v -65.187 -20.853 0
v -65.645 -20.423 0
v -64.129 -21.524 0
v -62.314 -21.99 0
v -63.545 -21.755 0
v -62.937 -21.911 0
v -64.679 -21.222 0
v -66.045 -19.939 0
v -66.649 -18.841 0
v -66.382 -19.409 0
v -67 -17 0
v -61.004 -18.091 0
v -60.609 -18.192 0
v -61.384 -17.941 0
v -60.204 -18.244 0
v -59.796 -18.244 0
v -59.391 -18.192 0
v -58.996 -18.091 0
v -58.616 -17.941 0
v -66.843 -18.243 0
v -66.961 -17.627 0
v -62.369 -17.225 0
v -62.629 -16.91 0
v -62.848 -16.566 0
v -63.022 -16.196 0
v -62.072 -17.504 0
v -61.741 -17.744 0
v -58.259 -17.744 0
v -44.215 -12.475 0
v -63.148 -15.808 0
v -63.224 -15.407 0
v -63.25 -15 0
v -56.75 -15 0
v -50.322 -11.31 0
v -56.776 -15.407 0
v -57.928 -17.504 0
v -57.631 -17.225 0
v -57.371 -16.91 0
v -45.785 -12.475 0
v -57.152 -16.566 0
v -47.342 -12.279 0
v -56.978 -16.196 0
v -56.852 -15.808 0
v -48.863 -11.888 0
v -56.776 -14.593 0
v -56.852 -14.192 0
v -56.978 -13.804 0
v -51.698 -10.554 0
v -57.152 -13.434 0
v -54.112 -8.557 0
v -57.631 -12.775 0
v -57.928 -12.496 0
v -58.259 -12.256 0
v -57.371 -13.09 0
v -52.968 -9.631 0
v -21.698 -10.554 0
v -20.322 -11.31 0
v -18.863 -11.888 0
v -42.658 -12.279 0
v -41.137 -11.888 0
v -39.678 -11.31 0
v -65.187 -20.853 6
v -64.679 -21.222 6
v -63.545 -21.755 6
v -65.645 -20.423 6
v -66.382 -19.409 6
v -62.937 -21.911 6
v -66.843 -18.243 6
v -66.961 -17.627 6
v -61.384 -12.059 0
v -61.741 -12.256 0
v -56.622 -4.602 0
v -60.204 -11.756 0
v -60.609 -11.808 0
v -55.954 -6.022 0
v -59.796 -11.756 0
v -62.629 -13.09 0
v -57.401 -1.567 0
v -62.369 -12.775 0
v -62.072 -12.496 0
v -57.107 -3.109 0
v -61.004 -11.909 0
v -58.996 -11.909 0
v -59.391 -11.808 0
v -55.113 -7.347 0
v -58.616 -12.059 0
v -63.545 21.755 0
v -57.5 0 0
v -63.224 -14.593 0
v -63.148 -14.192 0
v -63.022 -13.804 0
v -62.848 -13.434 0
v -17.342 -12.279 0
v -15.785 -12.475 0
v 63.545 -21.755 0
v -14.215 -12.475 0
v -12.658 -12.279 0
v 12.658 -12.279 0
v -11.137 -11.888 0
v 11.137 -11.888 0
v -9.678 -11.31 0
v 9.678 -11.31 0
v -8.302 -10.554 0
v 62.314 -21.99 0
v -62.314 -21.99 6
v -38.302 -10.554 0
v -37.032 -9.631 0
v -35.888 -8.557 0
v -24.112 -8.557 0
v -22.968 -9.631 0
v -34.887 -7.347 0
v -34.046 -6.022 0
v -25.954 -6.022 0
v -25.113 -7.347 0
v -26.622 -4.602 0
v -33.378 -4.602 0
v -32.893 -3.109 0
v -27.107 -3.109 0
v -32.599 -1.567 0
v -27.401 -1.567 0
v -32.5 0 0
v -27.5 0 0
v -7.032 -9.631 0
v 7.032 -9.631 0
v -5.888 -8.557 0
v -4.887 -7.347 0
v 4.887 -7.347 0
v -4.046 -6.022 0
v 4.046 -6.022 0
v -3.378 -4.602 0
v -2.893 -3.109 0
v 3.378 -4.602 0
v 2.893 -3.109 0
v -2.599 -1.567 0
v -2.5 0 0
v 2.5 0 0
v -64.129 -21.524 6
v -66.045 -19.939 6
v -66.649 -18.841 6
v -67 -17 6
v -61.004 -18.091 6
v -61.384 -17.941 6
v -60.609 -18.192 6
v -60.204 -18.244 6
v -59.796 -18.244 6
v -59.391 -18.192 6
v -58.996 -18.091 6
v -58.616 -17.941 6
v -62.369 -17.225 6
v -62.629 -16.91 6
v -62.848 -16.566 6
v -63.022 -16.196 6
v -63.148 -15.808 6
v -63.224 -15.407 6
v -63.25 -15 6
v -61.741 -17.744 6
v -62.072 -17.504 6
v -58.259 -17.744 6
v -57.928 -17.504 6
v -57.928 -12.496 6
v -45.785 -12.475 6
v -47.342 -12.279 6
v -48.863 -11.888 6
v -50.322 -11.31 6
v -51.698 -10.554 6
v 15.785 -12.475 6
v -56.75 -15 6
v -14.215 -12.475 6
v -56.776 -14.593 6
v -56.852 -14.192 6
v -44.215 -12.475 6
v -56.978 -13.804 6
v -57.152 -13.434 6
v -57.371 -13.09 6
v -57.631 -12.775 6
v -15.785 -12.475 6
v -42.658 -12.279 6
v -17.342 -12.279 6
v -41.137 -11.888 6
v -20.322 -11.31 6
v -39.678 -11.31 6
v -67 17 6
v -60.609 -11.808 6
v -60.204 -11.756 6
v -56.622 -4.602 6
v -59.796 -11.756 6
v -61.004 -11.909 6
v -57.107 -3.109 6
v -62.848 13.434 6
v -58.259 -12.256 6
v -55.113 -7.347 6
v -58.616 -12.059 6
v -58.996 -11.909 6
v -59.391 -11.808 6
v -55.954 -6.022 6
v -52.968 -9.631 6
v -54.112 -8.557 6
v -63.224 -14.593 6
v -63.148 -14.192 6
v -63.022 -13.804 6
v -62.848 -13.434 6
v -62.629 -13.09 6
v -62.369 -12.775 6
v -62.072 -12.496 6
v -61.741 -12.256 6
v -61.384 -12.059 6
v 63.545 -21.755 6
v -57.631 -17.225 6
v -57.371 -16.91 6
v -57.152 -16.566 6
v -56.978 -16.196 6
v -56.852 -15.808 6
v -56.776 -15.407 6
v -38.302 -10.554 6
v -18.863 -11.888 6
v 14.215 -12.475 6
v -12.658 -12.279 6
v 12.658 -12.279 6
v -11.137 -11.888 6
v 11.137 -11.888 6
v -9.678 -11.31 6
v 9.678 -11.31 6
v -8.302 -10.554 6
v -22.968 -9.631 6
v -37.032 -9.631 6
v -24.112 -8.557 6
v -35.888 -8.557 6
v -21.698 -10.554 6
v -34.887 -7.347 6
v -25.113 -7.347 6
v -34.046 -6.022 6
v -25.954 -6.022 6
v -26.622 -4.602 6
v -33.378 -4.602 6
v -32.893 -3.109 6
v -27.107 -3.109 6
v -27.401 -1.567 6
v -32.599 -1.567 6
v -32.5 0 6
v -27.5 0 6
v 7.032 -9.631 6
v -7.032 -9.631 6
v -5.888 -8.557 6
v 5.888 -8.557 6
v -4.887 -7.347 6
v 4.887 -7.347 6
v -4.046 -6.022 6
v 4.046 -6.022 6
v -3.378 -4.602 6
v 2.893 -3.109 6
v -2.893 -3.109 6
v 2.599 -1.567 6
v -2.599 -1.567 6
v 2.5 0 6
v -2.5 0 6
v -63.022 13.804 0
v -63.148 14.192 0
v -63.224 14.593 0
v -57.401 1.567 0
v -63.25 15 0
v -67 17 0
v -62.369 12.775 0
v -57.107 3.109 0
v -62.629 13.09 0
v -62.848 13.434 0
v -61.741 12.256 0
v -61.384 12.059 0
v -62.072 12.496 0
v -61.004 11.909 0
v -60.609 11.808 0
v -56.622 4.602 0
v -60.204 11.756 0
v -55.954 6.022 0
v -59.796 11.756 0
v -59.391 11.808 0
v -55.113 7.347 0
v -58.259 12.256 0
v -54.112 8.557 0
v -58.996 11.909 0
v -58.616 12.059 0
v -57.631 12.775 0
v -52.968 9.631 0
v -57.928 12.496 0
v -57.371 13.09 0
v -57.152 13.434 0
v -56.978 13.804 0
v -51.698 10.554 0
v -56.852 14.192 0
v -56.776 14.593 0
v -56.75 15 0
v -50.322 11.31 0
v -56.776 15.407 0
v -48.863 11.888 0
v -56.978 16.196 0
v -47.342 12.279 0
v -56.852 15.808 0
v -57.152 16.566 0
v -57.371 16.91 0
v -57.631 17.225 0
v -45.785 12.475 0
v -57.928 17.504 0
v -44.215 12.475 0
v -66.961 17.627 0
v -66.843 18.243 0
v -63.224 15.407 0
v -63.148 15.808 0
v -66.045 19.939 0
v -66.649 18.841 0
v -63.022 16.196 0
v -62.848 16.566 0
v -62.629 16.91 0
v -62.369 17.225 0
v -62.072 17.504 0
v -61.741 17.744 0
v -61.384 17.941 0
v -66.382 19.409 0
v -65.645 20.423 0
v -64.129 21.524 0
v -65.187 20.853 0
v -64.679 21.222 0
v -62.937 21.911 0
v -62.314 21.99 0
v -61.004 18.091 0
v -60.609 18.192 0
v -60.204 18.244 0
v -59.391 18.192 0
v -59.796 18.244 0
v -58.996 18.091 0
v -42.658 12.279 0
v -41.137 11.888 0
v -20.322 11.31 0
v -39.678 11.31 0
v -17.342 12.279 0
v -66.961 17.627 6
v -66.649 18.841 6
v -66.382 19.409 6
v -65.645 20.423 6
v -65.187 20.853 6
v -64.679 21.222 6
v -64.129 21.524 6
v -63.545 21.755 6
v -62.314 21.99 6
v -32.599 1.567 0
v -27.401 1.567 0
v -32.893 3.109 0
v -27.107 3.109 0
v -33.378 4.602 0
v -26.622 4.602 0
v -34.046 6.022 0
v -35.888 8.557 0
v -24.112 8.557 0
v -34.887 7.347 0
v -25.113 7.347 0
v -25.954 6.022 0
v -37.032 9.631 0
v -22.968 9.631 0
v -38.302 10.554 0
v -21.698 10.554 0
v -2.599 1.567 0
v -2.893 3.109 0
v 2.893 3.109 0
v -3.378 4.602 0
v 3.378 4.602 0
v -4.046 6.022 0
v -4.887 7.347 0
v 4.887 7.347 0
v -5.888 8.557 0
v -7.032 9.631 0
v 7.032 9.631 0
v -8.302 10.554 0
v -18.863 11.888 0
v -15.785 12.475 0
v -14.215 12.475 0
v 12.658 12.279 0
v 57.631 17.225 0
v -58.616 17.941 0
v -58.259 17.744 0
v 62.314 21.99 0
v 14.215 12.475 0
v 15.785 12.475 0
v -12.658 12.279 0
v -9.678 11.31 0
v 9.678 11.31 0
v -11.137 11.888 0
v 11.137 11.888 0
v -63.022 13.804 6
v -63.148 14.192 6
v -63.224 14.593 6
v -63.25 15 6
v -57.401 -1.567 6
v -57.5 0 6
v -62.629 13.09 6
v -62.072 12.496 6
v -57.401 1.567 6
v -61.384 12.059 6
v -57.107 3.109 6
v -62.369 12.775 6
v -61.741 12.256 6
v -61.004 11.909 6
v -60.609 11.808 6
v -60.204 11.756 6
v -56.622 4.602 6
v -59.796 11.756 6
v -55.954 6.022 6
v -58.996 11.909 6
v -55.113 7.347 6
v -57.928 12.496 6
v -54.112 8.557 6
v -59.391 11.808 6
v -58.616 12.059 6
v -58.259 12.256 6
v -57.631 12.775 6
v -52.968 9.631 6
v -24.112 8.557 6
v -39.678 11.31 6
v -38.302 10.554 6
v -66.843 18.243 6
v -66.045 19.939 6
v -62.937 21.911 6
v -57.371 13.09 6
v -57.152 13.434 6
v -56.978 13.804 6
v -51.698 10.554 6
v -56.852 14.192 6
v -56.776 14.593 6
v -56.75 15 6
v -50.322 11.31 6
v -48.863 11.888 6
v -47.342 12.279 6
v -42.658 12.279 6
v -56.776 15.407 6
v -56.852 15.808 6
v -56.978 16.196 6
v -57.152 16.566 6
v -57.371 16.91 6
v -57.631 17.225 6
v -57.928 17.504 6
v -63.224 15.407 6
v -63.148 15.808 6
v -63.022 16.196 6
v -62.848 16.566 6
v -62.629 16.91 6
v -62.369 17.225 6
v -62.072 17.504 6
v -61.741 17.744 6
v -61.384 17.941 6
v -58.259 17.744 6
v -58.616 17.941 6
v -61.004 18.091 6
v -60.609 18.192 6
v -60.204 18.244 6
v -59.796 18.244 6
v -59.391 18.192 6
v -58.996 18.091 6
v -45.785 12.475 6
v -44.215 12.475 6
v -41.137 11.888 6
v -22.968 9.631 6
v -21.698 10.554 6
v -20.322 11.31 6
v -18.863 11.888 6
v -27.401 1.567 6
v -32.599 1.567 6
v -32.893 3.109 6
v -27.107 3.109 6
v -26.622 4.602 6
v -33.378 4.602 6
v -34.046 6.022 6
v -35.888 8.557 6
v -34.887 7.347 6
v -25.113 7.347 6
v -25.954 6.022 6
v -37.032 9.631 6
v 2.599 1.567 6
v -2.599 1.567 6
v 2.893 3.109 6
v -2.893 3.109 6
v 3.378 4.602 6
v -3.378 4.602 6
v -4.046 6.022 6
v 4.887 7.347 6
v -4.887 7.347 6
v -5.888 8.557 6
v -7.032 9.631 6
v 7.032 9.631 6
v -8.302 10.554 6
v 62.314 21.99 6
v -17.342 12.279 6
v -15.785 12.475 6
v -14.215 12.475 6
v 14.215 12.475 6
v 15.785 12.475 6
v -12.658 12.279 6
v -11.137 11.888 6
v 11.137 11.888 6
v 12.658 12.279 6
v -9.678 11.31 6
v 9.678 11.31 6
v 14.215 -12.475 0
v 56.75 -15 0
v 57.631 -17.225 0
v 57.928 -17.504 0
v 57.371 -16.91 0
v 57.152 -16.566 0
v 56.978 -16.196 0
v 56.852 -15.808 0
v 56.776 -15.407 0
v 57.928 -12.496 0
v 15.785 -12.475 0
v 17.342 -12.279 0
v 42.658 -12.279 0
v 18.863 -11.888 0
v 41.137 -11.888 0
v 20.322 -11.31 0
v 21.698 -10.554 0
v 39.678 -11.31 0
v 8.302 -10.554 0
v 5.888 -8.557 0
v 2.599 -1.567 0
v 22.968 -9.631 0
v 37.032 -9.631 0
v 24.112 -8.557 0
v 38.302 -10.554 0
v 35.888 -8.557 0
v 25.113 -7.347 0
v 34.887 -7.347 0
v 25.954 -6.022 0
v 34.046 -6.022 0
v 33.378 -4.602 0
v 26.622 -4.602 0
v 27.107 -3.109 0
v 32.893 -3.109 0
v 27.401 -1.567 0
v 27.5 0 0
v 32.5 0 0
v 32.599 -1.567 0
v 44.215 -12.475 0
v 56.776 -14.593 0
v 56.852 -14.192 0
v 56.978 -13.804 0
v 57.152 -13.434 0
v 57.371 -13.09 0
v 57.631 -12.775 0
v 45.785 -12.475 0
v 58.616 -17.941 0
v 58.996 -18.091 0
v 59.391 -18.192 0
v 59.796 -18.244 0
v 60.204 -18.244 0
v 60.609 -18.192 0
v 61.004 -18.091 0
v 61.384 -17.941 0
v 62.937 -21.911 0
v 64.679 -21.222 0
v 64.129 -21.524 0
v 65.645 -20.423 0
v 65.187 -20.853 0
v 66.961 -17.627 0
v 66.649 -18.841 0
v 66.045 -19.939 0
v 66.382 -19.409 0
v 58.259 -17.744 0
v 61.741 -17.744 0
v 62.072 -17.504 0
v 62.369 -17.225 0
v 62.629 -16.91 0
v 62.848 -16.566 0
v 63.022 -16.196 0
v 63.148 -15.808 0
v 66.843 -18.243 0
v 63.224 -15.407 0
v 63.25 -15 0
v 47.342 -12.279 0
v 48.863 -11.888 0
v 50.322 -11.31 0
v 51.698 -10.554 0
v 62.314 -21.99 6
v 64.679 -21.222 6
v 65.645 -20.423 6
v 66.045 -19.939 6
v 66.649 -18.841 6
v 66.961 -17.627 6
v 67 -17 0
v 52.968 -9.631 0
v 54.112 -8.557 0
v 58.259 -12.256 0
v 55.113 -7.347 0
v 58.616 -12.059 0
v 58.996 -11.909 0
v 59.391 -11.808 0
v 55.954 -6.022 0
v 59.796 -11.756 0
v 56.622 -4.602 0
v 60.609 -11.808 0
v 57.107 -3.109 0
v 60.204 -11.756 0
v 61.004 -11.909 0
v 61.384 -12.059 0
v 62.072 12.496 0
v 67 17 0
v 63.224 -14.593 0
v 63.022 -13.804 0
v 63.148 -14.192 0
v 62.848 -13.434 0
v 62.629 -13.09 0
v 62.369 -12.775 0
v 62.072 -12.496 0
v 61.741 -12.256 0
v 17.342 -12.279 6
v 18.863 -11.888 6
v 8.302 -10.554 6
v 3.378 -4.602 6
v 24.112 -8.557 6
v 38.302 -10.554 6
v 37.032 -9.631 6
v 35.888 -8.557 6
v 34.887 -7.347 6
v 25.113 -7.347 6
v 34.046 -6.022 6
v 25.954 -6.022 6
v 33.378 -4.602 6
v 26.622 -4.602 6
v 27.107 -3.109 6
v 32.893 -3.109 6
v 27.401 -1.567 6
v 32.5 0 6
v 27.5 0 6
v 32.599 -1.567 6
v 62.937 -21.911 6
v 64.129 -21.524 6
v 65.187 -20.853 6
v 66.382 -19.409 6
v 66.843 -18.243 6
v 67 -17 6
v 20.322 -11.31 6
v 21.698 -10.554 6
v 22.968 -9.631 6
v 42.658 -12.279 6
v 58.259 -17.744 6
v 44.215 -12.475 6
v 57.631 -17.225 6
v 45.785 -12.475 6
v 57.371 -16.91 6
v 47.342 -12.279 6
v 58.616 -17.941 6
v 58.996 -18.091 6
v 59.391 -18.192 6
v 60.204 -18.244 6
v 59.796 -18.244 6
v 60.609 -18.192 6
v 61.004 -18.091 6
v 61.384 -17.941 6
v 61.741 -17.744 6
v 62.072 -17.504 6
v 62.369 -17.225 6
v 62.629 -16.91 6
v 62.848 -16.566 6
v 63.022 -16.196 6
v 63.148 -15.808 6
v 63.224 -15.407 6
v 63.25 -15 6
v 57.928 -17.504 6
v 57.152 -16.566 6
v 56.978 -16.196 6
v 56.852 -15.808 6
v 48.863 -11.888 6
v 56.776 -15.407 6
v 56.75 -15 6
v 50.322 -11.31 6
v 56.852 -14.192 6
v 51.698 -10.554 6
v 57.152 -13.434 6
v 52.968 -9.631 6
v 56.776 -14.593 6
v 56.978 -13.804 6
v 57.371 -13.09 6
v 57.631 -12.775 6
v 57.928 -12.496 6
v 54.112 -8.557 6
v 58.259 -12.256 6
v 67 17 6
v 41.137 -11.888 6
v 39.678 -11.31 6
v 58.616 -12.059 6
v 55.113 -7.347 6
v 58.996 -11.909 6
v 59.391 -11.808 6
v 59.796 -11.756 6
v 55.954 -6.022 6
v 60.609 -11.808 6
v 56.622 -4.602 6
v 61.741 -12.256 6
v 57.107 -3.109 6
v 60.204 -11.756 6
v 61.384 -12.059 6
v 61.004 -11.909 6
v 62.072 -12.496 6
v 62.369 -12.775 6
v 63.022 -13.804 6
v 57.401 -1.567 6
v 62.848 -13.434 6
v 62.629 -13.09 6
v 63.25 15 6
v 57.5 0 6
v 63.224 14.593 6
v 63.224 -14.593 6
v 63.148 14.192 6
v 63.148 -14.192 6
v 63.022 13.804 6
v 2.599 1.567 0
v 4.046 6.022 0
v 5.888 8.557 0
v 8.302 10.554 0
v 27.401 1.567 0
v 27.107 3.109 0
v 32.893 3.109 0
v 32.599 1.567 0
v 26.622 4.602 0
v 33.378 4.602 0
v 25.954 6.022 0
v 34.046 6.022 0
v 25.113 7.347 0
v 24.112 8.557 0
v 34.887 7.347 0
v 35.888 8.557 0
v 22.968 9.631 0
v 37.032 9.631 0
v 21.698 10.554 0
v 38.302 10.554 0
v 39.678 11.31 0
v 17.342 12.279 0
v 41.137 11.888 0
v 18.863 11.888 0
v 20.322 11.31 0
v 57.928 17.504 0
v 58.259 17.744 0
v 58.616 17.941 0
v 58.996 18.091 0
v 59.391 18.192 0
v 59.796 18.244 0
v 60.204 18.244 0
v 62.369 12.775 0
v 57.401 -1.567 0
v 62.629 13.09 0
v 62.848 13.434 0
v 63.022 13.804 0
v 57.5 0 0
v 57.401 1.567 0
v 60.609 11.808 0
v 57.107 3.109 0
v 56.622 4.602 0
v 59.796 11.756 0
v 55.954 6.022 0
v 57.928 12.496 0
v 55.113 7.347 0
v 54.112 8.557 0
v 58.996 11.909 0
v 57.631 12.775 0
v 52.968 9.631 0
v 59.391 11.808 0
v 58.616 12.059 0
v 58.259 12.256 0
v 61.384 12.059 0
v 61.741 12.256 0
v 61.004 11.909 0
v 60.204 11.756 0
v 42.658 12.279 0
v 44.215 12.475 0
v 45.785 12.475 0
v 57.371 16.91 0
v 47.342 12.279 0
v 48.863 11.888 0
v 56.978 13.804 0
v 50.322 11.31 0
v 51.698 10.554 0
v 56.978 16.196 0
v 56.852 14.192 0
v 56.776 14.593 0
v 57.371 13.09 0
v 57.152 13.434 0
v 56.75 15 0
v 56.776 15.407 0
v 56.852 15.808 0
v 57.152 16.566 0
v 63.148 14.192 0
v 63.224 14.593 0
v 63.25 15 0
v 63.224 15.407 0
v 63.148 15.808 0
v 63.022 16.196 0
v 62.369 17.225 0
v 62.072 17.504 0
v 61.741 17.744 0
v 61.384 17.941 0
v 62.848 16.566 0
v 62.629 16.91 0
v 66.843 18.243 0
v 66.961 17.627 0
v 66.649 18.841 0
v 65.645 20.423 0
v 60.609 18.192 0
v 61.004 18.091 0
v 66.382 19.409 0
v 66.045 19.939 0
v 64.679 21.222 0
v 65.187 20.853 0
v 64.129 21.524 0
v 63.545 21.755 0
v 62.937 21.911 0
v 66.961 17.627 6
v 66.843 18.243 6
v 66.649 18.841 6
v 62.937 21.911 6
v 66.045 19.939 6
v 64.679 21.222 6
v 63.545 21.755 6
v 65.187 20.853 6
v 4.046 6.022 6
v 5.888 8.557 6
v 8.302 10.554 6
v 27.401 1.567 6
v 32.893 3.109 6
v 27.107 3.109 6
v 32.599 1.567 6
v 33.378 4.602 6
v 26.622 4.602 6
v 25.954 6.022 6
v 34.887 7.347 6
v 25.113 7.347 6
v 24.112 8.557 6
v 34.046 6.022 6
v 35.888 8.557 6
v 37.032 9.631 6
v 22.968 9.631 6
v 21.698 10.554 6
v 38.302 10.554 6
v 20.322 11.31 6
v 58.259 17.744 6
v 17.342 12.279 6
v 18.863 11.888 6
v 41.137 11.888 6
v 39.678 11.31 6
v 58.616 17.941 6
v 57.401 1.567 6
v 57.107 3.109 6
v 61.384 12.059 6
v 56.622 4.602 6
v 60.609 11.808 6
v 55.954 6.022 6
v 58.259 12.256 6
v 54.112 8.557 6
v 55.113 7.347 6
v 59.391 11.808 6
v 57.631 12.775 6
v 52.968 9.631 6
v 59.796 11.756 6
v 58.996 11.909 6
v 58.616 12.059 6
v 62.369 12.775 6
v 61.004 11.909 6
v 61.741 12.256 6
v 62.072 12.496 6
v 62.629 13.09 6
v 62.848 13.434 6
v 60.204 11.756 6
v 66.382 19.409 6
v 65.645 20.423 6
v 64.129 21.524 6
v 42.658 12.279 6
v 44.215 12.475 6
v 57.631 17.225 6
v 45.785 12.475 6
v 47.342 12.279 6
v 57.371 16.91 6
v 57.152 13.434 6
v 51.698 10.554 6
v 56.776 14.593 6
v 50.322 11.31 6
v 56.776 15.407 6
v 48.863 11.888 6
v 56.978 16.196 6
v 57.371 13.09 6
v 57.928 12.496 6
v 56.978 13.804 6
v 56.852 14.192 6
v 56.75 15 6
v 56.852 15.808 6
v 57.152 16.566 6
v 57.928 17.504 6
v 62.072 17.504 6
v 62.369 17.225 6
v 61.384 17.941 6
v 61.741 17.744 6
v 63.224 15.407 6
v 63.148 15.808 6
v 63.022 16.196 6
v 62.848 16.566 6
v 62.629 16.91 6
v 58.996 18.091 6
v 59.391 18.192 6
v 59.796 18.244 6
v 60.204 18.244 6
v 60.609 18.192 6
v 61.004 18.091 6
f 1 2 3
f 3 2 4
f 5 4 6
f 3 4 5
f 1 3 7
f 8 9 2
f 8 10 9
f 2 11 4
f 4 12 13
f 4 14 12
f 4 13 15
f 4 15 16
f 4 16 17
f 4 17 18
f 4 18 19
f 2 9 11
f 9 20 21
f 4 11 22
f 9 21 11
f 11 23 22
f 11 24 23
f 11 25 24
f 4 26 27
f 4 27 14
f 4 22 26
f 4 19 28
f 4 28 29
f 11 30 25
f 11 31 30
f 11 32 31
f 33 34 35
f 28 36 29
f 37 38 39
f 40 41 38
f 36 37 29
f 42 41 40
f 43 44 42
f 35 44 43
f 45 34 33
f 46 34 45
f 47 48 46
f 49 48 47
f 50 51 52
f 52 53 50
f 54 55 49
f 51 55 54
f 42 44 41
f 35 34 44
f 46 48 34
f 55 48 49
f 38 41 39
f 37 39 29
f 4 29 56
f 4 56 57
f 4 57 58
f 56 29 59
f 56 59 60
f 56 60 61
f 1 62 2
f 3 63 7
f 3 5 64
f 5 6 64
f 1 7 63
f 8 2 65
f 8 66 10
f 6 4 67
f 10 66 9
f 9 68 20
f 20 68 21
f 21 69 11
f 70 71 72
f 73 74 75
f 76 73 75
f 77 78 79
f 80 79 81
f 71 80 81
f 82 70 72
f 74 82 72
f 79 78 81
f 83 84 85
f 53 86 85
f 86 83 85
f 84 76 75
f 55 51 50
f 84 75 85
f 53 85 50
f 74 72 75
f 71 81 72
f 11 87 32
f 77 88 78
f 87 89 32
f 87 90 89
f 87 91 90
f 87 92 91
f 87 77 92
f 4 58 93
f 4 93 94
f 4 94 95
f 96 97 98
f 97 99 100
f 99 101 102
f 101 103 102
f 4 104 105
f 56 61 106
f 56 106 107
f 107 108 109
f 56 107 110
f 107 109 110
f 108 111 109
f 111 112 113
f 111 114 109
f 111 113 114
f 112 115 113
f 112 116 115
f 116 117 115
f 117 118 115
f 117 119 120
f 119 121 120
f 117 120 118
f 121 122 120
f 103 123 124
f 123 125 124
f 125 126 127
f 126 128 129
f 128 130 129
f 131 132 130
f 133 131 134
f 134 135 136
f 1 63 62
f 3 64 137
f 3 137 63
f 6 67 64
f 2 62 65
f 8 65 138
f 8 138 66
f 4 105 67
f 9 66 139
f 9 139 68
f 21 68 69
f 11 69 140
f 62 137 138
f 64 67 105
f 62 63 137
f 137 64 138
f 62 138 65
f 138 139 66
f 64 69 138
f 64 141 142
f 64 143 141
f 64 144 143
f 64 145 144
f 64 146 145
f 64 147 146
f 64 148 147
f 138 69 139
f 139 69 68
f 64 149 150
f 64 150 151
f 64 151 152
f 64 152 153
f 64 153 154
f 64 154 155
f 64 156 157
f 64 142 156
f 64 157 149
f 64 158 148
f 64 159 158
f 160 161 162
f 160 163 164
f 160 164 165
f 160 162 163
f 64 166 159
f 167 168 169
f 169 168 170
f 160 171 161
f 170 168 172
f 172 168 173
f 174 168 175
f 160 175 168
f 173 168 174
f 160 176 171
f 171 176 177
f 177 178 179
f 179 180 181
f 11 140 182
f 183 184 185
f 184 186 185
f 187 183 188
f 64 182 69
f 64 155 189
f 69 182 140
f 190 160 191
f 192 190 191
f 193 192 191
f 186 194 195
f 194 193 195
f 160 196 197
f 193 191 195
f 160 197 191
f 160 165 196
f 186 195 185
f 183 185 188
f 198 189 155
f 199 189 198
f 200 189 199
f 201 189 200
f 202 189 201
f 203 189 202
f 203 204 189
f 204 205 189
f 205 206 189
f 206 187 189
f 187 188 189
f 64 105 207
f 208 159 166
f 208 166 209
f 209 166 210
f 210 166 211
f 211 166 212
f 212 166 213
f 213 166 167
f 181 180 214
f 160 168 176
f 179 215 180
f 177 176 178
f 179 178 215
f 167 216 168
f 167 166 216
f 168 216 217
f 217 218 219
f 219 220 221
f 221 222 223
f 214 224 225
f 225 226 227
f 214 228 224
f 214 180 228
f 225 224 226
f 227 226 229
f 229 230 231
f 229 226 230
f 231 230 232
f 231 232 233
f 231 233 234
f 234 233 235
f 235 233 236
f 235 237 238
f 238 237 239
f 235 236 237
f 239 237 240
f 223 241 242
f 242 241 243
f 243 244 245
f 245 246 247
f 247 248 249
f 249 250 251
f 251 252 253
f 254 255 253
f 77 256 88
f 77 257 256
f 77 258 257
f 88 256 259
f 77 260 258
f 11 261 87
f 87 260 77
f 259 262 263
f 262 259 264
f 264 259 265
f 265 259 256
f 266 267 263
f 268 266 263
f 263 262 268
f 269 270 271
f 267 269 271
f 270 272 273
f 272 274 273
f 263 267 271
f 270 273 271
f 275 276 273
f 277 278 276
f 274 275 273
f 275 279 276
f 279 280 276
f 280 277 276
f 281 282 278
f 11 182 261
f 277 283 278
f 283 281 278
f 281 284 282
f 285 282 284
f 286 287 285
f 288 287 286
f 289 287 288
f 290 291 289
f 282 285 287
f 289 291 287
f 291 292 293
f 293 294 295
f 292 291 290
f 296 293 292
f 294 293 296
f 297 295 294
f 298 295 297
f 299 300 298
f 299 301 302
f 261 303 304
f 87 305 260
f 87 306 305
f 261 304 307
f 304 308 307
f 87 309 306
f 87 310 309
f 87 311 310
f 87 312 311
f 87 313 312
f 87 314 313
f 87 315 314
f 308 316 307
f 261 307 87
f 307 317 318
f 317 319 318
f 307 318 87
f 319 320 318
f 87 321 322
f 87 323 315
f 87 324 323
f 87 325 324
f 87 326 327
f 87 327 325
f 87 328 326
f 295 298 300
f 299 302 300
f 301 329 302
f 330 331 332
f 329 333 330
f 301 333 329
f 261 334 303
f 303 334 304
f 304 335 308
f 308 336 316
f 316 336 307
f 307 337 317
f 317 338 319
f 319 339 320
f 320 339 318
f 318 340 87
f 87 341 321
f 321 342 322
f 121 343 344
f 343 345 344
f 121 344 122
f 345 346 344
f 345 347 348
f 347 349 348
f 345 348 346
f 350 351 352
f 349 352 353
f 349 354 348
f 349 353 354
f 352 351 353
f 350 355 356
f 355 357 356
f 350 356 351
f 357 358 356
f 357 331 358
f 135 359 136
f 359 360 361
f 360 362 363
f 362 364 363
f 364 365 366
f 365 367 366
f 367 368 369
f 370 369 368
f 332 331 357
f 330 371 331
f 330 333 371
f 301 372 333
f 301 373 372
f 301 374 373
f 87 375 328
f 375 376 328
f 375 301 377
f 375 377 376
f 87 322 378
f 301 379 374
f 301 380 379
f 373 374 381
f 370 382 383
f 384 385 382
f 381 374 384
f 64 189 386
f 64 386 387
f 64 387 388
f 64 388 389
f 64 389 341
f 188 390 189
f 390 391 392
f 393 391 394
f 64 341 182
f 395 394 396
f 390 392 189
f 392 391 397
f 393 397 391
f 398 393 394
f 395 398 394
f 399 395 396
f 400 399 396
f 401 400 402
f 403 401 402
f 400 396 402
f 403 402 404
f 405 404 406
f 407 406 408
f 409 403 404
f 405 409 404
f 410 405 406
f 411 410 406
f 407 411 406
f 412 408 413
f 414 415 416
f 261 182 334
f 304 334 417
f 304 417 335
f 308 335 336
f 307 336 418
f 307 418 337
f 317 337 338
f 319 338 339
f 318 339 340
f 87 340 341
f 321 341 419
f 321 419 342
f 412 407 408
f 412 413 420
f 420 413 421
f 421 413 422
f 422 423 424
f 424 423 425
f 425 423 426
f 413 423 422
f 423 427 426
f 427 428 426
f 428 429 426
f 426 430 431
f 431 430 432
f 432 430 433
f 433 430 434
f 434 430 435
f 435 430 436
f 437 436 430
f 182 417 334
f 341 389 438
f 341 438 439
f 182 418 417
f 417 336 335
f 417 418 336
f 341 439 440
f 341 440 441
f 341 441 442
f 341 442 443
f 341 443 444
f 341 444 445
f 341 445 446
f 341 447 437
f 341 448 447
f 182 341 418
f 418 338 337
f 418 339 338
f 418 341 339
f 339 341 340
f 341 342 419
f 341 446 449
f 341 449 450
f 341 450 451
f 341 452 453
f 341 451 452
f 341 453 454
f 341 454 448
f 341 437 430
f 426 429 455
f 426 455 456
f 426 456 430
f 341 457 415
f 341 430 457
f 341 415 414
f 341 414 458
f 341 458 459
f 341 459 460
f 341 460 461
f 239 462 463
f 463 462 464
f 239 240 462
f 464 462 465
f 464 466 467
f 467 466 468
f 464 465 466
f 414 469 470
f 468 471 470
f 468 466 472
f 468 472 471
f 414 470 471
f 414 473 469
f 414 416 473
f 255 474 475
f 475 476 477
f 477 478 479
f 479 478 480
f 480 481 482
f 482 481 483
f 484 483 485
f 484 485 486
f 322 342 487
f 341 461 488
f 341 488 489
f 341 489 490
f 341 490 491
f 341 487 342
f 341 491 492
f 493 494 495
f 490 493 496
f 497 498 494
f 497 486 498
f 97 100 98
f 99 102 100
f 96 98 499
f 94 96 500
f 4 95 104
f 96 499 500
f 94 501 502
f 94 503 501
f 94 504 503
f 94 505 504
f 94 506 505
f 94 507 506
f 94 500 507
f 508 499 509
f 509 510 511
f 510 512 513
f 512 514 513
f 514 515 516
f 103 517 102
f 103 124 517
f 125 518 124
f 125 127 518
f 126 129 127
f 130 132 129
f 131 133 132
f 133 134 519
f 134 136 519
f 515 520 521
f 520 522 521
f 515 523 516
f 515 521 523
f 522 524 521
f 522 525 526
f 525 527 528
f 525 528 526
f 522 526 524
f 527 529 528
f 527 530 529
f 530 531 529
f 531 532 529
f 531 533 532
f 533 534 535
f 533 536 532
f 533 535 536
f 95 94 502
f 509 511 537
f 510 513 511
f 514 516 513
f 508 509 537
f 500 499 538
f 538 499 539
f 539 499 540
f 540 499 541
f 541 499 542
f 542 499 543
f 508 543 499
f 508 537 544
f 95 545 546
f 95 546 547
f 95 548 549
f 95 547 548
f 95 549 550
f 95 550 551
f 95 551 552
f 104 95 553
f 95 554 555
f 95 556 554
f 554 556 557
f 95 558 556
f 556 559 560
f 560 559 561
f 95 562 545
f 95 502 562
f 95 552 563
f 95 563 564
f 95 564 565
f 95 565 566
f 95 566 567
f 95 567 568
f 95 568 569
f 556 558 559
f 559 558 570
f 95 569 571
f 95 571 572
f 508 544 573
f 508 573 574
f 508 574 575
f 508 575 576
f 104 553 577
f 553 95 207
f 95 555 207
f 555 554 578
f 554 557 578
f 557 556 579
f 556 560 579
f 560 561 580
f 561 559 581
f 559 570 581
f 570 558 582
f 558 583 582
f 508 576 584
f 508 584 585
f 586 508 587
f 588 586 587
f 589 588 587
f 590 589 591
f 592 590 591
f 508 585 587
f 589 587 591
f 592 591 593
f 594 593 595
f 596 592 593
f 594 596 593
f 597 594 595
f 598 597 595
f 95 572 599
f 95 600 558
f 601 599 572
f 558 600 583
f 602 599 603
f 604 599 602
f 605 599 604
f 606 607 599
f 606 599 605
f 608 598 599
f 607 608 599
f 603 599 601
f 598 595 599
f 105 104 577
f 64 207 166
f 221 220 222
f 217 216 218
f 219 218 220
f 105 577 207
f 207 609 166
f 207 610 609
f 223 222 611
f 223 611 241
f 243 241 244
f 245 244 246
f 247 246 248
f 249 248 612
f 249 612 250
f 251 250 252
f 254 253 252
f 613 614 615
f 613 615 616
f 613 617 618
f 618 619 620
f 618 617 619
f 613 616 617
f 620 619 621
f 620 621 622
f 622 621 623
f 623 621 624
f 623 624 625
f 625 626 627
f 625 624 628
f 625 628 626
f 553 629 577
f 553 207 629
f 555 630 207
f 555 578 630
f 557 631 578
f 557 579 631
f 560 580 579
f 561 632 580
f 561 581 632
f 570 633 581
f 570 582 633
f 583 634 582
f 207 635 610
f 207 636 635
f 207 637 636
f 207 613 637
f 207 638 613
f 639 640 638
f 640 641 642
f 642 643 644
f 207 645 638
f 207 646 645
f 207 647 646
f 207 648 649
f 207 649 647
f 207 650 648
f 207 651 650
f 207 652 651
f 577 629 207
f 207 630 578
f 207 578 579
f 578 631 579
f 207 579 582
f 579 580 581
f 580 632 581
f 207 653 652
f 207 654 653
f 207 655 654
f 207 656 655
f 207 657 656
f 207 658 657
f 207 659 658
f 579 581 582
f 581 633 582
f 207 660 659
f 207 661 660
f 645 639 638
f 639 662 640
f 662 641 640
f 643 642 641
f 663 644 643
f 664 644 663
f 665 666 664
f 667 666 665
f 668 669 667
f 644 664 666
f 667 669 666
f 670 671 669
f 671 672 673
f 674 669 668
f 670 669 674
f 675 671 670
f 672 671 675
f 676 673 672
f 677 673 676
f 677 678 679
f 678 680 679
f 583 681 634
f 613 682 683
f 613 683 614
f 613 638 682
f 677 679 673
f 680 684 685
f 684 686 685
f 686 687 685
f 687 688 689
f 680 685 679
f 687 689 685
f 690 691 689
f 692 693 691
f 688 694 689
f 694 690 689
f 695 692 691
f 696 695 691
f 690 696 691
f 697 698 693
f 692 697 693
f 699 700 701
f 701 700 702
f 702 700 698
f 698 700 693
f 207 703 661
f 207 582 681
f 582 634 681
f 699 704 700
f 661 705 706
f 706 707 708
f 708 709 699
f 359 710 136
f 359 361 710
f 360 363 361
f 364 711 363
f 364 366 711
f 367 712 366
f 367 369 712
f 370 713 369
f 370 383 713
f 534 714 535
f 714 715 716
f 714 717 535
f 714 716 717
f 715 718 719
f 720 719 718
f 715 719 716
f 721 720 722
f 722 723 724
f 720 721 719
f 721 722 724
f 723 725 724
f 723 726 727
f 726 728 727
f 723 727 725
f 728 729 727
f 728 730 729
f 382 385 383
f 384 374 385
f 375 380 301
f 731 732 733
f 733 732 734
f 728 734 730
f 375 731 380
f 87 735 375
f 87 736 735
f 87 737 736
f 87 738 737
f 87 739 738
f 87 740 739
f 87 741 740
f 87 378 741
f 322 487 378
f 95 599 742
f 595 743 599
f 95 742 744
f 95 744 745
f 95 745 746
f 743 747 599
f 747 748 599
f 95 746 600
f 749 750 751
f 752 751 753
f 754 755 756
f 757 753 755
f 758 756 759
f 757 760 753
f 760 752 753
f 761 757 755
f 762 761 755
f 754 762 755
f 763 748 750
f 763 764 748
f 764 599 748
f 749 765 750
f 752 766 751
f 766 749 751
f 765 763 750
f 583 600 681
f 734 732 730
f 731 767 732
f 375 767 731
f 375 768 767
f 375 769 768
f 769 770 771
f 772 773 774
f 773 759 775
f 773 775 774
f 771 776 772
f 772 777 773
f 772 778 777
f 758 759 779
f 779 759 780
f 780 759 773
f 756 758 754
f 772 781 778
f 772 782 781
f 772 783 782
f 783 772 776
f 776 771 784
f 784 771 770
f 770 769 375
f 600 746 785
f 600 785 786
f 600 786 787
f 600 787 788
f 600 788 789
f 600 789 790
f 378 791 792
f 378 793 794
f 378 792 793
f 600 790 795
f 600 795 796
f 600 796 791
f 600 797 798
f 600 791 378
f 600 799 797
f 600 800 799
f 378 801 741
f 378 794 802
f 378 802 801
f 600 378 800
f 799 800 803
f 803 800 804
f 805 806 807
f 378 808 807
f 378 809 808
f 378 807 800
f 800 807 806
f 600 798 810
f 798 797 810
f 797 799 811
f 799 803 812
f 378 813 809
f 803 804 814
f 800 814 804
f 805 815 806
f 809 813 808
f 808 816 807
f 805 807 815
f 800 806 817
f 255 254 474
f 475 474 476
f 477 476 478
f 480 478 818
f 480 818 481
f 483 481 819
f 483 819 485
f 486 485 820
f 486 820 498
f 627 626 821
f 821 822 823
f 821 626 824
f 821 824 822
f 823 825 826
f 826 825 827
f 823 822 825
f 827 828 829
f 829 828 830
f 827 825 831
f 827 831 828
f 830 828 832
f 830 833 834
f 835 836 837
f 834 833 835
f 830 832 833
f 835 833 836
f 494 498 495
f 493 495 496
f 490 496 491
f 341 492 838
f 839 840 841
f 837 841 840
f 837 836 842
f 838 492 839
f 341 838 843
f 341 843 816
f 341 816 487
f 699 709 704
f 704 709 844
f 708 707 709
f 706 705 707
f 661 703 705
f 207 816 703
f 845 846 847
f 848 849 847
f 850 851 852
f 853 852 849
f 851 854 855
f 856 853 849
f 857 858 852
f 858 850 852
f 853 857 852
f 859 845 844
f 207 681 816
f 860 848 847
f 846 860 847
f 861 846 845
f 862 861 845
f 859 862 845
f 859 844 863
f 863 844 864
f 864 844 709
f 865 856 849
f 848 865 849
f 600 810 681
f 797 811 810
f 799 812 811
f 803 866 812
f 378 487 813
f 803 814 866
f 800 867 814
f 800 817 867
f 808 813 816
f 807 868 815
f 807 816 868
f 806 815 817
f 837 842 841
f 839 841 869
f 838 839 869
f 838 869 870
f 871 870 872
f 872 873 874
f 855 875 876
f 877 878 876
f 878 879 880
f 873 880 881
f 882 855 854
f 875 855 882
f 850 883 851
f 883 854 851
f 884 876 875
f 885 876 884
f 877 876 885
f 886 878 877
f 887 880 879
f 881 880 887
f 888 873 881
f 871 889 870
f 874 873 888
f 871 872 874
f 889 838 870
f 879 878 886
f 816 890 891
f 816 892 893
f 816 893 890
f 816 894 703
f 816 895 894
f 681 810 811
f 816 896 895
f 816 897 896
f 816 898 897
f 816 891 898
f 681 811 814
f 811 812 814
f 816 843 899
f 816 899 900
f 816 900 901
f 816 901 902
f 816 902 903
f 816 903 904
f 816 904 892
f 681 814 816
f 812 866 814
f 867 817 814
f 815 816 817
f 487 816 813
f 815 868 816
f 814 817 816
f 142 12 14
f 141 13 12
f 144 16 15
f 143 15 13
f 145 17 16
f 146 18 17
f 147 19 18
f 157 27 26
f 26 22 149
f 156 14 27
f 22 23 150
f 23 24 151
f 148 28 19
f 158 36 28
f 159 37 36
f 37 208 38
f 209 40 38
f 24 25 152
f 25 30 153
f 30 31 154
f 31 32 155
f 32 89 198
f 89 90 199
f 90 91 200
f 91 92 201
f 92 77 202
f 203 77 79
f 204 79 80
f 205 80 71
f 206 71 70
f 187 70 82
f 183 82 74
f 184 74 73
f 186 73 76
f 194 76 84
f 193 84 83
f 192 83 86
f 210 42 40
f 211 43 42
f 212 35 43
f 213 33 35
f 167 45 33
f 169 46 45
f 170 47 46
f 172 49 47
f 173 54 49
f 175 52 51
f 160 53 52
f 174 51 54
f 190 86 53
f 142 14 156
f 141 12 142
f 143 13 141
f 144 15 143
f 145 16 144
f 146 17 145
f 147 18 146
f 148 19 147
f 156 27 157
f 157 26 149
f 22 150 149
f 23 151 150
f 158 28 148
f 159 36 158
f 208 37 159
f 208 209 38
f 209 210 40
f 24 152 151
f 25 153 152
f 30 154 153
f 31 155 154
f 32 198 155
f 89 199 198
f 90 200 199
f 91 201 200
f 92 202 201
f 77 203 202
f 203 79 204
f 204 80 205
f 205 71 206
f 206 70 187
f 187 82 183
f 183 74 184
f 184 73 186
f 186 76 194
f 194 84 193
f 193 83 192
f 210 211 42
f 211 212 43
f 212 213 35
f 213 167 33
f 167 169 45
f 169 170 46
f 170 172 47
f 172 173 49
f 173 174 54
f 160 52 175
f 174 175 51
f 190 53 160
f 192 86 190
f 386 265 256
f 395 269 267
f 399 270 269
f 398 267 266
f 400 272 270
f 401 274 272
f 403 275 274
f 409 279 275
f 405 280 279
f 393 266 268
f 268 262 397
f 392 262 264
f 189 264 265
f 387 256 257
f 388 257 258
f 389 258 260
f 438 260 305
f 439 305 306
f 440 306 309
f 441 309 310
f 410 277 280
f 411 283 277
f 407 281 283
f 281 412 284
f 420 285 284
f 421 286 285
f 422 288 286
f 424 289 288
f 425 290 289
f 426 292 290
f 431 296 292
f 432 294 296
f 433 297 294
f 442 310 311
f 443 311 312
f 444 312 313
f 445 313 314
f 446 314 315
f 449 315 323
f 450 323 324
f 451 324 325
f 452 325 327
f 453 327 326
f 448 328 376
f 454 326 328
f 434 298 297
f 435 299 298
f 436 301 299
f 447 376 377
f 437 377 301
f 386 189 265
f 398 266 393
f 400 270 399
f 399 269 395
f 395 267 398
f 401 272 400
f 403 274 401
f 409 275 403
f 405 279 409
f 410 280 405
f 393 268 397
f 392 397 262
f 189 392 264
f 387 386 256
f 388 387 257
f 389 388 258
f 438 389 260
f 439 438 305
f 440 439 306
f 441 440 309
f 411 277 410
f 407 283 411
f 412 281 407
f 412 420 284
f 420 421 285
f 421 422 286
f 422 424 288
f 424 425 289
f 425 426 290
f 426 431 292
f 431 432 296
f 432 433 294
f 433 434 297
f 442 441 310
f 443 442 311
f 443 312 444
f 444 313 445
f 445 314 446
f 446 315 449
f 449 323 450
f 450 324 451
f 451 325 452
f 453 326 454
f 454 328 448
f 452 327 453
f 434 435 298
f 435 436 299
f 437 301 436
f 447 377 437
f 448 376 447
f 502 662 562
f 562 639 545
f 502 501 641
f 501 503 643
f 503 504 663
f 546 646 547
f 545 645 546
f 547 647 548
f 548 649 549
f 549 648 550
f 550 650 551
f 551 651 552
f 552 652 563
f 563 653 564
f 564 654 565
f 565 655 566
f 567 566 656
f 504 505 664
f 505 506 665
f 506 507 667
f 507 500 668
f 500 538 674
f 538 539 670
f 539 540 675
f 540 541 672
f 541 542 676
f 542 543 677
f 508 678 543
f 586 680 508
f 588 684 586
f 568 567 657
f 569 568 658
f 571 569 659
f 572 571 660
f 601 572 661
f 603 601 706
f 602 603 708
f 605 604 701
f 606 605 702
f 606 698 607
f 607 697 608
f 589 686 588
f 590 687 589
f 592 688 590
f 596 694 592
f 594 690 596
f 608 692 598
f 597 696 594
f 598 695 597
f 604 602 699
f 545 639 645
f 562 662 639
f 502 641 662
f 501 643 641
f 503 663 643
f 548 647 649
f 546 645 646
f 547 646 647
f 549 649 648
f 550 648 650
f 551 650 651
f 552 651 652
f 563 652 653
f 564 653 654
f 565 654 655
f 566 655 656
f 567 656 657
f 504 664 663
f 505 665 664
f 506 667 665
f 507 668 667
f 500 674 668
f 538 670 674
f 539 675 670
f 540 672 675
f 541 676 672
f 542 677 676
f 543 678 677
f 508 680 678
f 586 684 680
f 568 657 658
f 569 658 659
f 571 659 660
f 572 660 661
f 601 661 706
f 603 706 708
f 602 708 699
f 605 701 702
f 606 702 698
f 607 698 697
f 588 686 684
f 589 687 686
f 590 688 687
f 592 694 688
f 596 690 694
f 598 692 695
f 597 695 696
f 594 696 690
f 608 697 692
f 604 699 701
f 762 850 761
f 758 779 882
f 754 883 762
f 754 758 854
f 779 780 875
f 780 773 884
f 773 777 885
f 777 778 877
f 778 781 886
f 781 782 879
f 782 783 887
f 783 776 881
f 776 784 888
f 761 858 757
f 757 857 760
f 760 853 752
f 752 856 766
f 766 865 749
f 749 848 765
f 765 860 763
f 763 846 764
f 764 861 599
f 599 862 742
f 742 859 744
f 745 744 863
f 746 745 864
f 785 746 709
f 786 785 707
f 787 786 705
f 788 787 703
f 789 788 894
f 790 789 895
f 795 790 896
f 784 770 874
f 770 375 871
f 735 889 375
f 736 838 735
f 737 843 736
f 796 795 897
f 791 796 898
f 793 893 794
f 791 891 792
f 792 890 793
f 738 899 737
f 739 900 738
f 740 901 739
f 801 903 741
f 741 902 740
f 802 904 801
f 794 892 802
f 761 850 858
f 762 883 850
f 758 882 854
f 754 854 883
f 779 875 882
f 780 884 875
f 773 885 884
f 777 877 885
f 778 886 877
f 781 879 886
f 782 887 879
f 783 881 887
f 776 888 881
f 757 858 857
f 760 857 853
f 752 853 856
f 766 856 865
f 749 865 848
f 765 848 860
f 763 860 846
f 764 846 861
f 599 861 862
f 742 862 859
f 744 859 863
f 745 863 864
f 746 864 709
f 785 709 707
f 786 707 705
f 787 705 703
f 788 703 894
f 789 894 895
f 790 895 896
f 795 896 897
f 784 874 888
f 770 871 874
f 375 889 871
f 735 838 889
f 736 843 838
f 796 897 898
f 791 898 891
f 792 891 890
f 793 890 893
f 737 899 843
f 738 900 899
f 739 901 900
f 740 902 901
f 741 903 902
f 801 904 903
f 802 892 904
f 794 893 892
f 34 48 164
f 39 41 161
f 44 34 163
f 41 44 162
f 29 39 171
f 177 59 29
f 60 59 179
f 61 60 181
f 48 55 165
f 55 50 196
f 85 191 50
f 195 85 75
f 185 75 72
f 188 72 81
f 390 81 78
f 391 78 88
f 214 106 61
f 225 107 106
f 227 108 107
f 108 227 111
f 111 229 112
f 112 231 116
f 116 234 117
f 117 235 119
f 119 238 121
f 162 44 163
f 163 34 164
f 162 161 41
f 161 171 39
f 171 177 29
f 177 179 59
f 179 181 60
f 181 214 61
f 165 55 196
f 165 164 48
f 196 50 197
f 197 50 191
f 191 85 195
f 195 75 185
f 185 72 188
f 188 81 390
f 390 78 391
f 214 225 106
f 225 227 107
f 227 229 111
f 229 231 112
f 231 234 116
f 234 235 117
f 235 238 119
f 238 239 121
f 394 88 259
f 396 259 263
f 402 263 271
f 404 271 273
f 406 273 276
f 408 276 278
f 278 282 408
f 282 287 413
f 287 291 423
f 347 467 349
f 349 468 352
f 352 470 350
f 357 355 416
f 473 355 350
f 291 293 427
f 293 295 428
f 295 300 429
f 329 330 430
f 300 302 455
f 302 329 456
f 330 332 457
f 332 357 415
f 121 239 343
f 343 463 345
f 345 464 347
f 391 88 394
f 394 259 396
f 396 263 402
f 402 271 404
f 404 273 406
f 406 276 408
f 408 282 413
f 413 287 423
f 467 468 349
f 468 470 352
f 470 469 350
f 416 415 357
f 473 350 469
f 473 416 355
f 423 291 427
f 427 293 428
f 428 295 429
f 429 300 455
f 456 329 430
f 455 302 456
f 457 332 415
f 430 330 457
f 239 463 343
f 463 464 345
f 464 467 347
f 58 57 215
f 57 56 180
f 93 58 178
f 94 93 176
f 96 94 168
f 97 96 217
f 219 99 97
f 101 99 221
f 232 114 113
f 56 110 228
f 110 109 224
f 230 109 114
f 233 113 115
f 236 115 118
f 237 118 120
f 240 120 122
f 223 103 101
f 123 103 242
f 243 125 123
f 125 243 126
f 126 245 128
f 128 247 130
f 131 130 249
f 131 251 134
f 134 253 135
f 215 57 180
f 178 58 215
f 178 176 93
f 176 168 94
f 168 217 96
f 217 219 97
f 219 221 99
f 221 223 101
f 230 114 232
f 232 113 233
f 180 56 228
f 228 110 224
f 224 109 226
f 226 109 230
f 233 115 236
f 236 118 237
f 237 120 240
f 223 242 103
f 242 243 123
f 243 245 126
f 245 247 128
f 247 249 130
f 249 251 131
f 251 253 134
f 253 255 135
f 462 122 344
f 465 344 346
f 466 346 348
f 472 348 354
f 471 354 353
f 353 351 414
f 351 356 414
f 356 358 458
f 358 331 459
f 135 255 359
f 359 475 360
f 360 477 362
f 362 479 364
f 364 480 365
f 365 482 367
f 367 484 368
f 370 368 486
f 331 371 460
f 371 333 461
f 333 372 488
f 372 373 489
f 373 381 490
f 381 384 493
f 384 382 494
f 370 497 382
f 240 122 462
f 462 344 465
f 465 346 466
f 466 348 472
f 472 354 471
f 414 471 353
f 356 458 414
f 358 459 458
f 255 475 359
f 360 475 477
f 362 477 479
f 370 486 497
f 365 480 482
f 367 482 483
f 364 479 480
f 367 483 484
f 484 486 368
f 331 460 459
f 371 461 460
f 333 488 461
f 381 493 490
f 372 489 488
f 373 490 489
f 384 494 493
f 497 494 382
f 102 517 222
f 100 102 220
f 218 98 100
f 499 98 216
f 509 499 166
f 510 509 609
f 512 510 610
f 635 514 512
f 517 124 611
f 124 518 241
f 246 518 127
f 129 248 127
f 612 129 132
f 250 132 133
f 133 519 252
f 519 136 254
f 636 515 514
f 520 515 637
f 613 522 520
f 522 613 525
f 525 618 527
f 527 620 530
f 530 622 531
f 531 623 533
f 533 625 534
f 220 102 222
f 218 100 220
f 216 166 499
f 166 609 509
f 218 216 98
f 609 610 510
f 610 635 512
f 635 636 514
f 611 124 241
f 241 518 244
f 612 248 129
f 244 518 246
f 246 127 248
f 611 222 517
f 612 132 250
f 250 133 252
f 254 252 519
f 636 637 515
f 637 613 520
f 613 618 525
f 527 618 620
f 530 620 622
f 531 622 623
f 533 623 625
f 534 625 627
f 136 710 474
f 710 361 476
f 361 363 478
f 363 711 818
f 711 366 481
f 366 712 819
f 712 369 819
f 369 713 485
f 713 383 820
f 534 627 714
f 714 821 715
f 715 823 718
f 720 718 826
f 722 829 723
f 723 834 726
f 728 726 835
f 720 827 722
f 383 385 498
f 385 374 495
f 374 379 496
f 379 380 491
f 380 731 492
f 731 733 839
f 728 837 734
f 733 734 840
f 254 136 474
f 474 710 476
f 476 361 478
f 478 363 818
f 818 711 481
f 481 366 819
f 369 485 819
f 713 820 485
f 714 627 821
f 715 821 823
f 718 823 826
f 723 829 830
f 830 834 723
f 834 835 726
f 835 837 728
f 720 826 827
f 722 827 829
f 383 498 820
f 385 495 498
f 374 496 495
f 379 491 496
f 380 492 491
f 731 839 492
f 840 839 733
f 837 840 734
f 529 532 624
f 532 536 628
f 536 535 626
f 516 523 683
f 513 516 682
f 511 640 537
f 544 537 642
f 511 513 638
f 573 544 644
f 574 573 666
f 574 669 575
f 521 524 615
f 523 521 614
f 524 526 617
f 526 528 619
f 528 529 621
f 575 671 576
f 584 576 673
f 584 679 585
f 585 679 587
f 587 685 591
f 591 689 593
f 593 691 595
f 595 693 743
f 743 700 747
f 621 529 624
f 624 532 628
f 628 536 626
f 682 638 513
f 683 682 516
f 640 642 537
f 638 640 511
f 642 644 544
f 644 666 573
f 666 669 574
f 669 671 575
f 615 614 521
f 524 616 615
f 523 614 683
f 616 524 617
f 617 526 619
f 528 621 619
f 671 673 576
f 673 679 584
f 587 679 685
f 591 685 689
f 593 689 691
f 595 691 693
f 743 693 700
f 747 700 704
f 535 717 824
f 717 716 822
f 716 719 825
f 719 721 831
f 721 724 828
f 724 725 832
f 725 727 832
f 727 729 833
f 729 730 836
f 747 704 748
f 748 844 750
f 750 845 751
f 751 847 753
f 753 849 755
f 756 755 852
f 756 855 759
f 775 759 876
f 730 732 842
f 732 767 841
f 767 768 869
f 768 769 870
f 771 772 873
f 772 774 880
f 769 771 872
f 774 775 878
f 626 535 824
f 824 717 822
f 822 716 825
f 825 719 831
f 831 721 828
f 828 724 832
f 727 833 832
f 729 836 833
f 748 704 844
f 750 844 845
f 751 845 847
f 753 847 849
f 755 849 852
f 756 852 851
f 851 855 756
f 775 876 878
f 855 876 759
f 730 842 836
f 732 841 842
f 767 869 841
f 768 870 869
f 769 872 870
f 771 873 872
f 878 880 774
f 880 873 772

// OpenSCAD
$fn = 50;

difference() {
	union() {
		hull() {
			translate(v = [-62.0, 17.0, 0]) {
				cylinder(h = 6, r = 5);
			}
			translate(v = [62.0, 17.0, 0]) {
				cylinder(h = 6, r = 5);
			}
			translate(v = [-62.0, -17.0, 0]) {
				cylinder(h = 6, r = 5);
			}
			translate(v = [62.0, -17.0, 0]) {
				cylinder(h = 6, r = 5);
			}
		}
	}
	union() {
		translate(v = [-60.0, -15.0, -100.0]) {
			cylinder(h = 200, r = 3.25);
		}
		translate(v = [-60.0, 15.0, -100.0]) {
			cylinder(h = 200, r = 3.25);
		}
		translate(v = [60.0, -15.0, -100.0]) {
			cylinder(h = 200, r = 3.25);
		}
		translate(v = [60.0, 15.0, -100.0]) {
			cylinder(h = 200, r = 3.25);
		}
		translate(v = [-60.0, -15.0, -100.0]) {
			cylinder(h = 200, r = 1.8);
		}
		translate(v = [-60.0, 15.0, -100.0]) {
			cylinder(h = 200, r = 1.8);
		}
		translate(v = [60.0, -15.0, -100.0]) {
			cylinder(h = 200, r = 1.8);
		}
		translate(v = [60.0, 15.0, -100.0]) {
			cylinder(h = 200, r = 1.8);
		}
		translate(v = [-45.0, 0, 0.0]) {
			cylinder(h = 6, r = 12.5);
		}
		translate(v = [-15.0, 0, 0.0]) {
			cylinder(h = 6, r = 12.5);
		}
		translate(v = [15.0, 0, 0.0]) {
			cylinder(h = 6, r = 12.5);
		}
		translate(v = [45.0, 0, 0.0]) {
			cylinder(h = 6, r = 12.5);
		}
	}
}
